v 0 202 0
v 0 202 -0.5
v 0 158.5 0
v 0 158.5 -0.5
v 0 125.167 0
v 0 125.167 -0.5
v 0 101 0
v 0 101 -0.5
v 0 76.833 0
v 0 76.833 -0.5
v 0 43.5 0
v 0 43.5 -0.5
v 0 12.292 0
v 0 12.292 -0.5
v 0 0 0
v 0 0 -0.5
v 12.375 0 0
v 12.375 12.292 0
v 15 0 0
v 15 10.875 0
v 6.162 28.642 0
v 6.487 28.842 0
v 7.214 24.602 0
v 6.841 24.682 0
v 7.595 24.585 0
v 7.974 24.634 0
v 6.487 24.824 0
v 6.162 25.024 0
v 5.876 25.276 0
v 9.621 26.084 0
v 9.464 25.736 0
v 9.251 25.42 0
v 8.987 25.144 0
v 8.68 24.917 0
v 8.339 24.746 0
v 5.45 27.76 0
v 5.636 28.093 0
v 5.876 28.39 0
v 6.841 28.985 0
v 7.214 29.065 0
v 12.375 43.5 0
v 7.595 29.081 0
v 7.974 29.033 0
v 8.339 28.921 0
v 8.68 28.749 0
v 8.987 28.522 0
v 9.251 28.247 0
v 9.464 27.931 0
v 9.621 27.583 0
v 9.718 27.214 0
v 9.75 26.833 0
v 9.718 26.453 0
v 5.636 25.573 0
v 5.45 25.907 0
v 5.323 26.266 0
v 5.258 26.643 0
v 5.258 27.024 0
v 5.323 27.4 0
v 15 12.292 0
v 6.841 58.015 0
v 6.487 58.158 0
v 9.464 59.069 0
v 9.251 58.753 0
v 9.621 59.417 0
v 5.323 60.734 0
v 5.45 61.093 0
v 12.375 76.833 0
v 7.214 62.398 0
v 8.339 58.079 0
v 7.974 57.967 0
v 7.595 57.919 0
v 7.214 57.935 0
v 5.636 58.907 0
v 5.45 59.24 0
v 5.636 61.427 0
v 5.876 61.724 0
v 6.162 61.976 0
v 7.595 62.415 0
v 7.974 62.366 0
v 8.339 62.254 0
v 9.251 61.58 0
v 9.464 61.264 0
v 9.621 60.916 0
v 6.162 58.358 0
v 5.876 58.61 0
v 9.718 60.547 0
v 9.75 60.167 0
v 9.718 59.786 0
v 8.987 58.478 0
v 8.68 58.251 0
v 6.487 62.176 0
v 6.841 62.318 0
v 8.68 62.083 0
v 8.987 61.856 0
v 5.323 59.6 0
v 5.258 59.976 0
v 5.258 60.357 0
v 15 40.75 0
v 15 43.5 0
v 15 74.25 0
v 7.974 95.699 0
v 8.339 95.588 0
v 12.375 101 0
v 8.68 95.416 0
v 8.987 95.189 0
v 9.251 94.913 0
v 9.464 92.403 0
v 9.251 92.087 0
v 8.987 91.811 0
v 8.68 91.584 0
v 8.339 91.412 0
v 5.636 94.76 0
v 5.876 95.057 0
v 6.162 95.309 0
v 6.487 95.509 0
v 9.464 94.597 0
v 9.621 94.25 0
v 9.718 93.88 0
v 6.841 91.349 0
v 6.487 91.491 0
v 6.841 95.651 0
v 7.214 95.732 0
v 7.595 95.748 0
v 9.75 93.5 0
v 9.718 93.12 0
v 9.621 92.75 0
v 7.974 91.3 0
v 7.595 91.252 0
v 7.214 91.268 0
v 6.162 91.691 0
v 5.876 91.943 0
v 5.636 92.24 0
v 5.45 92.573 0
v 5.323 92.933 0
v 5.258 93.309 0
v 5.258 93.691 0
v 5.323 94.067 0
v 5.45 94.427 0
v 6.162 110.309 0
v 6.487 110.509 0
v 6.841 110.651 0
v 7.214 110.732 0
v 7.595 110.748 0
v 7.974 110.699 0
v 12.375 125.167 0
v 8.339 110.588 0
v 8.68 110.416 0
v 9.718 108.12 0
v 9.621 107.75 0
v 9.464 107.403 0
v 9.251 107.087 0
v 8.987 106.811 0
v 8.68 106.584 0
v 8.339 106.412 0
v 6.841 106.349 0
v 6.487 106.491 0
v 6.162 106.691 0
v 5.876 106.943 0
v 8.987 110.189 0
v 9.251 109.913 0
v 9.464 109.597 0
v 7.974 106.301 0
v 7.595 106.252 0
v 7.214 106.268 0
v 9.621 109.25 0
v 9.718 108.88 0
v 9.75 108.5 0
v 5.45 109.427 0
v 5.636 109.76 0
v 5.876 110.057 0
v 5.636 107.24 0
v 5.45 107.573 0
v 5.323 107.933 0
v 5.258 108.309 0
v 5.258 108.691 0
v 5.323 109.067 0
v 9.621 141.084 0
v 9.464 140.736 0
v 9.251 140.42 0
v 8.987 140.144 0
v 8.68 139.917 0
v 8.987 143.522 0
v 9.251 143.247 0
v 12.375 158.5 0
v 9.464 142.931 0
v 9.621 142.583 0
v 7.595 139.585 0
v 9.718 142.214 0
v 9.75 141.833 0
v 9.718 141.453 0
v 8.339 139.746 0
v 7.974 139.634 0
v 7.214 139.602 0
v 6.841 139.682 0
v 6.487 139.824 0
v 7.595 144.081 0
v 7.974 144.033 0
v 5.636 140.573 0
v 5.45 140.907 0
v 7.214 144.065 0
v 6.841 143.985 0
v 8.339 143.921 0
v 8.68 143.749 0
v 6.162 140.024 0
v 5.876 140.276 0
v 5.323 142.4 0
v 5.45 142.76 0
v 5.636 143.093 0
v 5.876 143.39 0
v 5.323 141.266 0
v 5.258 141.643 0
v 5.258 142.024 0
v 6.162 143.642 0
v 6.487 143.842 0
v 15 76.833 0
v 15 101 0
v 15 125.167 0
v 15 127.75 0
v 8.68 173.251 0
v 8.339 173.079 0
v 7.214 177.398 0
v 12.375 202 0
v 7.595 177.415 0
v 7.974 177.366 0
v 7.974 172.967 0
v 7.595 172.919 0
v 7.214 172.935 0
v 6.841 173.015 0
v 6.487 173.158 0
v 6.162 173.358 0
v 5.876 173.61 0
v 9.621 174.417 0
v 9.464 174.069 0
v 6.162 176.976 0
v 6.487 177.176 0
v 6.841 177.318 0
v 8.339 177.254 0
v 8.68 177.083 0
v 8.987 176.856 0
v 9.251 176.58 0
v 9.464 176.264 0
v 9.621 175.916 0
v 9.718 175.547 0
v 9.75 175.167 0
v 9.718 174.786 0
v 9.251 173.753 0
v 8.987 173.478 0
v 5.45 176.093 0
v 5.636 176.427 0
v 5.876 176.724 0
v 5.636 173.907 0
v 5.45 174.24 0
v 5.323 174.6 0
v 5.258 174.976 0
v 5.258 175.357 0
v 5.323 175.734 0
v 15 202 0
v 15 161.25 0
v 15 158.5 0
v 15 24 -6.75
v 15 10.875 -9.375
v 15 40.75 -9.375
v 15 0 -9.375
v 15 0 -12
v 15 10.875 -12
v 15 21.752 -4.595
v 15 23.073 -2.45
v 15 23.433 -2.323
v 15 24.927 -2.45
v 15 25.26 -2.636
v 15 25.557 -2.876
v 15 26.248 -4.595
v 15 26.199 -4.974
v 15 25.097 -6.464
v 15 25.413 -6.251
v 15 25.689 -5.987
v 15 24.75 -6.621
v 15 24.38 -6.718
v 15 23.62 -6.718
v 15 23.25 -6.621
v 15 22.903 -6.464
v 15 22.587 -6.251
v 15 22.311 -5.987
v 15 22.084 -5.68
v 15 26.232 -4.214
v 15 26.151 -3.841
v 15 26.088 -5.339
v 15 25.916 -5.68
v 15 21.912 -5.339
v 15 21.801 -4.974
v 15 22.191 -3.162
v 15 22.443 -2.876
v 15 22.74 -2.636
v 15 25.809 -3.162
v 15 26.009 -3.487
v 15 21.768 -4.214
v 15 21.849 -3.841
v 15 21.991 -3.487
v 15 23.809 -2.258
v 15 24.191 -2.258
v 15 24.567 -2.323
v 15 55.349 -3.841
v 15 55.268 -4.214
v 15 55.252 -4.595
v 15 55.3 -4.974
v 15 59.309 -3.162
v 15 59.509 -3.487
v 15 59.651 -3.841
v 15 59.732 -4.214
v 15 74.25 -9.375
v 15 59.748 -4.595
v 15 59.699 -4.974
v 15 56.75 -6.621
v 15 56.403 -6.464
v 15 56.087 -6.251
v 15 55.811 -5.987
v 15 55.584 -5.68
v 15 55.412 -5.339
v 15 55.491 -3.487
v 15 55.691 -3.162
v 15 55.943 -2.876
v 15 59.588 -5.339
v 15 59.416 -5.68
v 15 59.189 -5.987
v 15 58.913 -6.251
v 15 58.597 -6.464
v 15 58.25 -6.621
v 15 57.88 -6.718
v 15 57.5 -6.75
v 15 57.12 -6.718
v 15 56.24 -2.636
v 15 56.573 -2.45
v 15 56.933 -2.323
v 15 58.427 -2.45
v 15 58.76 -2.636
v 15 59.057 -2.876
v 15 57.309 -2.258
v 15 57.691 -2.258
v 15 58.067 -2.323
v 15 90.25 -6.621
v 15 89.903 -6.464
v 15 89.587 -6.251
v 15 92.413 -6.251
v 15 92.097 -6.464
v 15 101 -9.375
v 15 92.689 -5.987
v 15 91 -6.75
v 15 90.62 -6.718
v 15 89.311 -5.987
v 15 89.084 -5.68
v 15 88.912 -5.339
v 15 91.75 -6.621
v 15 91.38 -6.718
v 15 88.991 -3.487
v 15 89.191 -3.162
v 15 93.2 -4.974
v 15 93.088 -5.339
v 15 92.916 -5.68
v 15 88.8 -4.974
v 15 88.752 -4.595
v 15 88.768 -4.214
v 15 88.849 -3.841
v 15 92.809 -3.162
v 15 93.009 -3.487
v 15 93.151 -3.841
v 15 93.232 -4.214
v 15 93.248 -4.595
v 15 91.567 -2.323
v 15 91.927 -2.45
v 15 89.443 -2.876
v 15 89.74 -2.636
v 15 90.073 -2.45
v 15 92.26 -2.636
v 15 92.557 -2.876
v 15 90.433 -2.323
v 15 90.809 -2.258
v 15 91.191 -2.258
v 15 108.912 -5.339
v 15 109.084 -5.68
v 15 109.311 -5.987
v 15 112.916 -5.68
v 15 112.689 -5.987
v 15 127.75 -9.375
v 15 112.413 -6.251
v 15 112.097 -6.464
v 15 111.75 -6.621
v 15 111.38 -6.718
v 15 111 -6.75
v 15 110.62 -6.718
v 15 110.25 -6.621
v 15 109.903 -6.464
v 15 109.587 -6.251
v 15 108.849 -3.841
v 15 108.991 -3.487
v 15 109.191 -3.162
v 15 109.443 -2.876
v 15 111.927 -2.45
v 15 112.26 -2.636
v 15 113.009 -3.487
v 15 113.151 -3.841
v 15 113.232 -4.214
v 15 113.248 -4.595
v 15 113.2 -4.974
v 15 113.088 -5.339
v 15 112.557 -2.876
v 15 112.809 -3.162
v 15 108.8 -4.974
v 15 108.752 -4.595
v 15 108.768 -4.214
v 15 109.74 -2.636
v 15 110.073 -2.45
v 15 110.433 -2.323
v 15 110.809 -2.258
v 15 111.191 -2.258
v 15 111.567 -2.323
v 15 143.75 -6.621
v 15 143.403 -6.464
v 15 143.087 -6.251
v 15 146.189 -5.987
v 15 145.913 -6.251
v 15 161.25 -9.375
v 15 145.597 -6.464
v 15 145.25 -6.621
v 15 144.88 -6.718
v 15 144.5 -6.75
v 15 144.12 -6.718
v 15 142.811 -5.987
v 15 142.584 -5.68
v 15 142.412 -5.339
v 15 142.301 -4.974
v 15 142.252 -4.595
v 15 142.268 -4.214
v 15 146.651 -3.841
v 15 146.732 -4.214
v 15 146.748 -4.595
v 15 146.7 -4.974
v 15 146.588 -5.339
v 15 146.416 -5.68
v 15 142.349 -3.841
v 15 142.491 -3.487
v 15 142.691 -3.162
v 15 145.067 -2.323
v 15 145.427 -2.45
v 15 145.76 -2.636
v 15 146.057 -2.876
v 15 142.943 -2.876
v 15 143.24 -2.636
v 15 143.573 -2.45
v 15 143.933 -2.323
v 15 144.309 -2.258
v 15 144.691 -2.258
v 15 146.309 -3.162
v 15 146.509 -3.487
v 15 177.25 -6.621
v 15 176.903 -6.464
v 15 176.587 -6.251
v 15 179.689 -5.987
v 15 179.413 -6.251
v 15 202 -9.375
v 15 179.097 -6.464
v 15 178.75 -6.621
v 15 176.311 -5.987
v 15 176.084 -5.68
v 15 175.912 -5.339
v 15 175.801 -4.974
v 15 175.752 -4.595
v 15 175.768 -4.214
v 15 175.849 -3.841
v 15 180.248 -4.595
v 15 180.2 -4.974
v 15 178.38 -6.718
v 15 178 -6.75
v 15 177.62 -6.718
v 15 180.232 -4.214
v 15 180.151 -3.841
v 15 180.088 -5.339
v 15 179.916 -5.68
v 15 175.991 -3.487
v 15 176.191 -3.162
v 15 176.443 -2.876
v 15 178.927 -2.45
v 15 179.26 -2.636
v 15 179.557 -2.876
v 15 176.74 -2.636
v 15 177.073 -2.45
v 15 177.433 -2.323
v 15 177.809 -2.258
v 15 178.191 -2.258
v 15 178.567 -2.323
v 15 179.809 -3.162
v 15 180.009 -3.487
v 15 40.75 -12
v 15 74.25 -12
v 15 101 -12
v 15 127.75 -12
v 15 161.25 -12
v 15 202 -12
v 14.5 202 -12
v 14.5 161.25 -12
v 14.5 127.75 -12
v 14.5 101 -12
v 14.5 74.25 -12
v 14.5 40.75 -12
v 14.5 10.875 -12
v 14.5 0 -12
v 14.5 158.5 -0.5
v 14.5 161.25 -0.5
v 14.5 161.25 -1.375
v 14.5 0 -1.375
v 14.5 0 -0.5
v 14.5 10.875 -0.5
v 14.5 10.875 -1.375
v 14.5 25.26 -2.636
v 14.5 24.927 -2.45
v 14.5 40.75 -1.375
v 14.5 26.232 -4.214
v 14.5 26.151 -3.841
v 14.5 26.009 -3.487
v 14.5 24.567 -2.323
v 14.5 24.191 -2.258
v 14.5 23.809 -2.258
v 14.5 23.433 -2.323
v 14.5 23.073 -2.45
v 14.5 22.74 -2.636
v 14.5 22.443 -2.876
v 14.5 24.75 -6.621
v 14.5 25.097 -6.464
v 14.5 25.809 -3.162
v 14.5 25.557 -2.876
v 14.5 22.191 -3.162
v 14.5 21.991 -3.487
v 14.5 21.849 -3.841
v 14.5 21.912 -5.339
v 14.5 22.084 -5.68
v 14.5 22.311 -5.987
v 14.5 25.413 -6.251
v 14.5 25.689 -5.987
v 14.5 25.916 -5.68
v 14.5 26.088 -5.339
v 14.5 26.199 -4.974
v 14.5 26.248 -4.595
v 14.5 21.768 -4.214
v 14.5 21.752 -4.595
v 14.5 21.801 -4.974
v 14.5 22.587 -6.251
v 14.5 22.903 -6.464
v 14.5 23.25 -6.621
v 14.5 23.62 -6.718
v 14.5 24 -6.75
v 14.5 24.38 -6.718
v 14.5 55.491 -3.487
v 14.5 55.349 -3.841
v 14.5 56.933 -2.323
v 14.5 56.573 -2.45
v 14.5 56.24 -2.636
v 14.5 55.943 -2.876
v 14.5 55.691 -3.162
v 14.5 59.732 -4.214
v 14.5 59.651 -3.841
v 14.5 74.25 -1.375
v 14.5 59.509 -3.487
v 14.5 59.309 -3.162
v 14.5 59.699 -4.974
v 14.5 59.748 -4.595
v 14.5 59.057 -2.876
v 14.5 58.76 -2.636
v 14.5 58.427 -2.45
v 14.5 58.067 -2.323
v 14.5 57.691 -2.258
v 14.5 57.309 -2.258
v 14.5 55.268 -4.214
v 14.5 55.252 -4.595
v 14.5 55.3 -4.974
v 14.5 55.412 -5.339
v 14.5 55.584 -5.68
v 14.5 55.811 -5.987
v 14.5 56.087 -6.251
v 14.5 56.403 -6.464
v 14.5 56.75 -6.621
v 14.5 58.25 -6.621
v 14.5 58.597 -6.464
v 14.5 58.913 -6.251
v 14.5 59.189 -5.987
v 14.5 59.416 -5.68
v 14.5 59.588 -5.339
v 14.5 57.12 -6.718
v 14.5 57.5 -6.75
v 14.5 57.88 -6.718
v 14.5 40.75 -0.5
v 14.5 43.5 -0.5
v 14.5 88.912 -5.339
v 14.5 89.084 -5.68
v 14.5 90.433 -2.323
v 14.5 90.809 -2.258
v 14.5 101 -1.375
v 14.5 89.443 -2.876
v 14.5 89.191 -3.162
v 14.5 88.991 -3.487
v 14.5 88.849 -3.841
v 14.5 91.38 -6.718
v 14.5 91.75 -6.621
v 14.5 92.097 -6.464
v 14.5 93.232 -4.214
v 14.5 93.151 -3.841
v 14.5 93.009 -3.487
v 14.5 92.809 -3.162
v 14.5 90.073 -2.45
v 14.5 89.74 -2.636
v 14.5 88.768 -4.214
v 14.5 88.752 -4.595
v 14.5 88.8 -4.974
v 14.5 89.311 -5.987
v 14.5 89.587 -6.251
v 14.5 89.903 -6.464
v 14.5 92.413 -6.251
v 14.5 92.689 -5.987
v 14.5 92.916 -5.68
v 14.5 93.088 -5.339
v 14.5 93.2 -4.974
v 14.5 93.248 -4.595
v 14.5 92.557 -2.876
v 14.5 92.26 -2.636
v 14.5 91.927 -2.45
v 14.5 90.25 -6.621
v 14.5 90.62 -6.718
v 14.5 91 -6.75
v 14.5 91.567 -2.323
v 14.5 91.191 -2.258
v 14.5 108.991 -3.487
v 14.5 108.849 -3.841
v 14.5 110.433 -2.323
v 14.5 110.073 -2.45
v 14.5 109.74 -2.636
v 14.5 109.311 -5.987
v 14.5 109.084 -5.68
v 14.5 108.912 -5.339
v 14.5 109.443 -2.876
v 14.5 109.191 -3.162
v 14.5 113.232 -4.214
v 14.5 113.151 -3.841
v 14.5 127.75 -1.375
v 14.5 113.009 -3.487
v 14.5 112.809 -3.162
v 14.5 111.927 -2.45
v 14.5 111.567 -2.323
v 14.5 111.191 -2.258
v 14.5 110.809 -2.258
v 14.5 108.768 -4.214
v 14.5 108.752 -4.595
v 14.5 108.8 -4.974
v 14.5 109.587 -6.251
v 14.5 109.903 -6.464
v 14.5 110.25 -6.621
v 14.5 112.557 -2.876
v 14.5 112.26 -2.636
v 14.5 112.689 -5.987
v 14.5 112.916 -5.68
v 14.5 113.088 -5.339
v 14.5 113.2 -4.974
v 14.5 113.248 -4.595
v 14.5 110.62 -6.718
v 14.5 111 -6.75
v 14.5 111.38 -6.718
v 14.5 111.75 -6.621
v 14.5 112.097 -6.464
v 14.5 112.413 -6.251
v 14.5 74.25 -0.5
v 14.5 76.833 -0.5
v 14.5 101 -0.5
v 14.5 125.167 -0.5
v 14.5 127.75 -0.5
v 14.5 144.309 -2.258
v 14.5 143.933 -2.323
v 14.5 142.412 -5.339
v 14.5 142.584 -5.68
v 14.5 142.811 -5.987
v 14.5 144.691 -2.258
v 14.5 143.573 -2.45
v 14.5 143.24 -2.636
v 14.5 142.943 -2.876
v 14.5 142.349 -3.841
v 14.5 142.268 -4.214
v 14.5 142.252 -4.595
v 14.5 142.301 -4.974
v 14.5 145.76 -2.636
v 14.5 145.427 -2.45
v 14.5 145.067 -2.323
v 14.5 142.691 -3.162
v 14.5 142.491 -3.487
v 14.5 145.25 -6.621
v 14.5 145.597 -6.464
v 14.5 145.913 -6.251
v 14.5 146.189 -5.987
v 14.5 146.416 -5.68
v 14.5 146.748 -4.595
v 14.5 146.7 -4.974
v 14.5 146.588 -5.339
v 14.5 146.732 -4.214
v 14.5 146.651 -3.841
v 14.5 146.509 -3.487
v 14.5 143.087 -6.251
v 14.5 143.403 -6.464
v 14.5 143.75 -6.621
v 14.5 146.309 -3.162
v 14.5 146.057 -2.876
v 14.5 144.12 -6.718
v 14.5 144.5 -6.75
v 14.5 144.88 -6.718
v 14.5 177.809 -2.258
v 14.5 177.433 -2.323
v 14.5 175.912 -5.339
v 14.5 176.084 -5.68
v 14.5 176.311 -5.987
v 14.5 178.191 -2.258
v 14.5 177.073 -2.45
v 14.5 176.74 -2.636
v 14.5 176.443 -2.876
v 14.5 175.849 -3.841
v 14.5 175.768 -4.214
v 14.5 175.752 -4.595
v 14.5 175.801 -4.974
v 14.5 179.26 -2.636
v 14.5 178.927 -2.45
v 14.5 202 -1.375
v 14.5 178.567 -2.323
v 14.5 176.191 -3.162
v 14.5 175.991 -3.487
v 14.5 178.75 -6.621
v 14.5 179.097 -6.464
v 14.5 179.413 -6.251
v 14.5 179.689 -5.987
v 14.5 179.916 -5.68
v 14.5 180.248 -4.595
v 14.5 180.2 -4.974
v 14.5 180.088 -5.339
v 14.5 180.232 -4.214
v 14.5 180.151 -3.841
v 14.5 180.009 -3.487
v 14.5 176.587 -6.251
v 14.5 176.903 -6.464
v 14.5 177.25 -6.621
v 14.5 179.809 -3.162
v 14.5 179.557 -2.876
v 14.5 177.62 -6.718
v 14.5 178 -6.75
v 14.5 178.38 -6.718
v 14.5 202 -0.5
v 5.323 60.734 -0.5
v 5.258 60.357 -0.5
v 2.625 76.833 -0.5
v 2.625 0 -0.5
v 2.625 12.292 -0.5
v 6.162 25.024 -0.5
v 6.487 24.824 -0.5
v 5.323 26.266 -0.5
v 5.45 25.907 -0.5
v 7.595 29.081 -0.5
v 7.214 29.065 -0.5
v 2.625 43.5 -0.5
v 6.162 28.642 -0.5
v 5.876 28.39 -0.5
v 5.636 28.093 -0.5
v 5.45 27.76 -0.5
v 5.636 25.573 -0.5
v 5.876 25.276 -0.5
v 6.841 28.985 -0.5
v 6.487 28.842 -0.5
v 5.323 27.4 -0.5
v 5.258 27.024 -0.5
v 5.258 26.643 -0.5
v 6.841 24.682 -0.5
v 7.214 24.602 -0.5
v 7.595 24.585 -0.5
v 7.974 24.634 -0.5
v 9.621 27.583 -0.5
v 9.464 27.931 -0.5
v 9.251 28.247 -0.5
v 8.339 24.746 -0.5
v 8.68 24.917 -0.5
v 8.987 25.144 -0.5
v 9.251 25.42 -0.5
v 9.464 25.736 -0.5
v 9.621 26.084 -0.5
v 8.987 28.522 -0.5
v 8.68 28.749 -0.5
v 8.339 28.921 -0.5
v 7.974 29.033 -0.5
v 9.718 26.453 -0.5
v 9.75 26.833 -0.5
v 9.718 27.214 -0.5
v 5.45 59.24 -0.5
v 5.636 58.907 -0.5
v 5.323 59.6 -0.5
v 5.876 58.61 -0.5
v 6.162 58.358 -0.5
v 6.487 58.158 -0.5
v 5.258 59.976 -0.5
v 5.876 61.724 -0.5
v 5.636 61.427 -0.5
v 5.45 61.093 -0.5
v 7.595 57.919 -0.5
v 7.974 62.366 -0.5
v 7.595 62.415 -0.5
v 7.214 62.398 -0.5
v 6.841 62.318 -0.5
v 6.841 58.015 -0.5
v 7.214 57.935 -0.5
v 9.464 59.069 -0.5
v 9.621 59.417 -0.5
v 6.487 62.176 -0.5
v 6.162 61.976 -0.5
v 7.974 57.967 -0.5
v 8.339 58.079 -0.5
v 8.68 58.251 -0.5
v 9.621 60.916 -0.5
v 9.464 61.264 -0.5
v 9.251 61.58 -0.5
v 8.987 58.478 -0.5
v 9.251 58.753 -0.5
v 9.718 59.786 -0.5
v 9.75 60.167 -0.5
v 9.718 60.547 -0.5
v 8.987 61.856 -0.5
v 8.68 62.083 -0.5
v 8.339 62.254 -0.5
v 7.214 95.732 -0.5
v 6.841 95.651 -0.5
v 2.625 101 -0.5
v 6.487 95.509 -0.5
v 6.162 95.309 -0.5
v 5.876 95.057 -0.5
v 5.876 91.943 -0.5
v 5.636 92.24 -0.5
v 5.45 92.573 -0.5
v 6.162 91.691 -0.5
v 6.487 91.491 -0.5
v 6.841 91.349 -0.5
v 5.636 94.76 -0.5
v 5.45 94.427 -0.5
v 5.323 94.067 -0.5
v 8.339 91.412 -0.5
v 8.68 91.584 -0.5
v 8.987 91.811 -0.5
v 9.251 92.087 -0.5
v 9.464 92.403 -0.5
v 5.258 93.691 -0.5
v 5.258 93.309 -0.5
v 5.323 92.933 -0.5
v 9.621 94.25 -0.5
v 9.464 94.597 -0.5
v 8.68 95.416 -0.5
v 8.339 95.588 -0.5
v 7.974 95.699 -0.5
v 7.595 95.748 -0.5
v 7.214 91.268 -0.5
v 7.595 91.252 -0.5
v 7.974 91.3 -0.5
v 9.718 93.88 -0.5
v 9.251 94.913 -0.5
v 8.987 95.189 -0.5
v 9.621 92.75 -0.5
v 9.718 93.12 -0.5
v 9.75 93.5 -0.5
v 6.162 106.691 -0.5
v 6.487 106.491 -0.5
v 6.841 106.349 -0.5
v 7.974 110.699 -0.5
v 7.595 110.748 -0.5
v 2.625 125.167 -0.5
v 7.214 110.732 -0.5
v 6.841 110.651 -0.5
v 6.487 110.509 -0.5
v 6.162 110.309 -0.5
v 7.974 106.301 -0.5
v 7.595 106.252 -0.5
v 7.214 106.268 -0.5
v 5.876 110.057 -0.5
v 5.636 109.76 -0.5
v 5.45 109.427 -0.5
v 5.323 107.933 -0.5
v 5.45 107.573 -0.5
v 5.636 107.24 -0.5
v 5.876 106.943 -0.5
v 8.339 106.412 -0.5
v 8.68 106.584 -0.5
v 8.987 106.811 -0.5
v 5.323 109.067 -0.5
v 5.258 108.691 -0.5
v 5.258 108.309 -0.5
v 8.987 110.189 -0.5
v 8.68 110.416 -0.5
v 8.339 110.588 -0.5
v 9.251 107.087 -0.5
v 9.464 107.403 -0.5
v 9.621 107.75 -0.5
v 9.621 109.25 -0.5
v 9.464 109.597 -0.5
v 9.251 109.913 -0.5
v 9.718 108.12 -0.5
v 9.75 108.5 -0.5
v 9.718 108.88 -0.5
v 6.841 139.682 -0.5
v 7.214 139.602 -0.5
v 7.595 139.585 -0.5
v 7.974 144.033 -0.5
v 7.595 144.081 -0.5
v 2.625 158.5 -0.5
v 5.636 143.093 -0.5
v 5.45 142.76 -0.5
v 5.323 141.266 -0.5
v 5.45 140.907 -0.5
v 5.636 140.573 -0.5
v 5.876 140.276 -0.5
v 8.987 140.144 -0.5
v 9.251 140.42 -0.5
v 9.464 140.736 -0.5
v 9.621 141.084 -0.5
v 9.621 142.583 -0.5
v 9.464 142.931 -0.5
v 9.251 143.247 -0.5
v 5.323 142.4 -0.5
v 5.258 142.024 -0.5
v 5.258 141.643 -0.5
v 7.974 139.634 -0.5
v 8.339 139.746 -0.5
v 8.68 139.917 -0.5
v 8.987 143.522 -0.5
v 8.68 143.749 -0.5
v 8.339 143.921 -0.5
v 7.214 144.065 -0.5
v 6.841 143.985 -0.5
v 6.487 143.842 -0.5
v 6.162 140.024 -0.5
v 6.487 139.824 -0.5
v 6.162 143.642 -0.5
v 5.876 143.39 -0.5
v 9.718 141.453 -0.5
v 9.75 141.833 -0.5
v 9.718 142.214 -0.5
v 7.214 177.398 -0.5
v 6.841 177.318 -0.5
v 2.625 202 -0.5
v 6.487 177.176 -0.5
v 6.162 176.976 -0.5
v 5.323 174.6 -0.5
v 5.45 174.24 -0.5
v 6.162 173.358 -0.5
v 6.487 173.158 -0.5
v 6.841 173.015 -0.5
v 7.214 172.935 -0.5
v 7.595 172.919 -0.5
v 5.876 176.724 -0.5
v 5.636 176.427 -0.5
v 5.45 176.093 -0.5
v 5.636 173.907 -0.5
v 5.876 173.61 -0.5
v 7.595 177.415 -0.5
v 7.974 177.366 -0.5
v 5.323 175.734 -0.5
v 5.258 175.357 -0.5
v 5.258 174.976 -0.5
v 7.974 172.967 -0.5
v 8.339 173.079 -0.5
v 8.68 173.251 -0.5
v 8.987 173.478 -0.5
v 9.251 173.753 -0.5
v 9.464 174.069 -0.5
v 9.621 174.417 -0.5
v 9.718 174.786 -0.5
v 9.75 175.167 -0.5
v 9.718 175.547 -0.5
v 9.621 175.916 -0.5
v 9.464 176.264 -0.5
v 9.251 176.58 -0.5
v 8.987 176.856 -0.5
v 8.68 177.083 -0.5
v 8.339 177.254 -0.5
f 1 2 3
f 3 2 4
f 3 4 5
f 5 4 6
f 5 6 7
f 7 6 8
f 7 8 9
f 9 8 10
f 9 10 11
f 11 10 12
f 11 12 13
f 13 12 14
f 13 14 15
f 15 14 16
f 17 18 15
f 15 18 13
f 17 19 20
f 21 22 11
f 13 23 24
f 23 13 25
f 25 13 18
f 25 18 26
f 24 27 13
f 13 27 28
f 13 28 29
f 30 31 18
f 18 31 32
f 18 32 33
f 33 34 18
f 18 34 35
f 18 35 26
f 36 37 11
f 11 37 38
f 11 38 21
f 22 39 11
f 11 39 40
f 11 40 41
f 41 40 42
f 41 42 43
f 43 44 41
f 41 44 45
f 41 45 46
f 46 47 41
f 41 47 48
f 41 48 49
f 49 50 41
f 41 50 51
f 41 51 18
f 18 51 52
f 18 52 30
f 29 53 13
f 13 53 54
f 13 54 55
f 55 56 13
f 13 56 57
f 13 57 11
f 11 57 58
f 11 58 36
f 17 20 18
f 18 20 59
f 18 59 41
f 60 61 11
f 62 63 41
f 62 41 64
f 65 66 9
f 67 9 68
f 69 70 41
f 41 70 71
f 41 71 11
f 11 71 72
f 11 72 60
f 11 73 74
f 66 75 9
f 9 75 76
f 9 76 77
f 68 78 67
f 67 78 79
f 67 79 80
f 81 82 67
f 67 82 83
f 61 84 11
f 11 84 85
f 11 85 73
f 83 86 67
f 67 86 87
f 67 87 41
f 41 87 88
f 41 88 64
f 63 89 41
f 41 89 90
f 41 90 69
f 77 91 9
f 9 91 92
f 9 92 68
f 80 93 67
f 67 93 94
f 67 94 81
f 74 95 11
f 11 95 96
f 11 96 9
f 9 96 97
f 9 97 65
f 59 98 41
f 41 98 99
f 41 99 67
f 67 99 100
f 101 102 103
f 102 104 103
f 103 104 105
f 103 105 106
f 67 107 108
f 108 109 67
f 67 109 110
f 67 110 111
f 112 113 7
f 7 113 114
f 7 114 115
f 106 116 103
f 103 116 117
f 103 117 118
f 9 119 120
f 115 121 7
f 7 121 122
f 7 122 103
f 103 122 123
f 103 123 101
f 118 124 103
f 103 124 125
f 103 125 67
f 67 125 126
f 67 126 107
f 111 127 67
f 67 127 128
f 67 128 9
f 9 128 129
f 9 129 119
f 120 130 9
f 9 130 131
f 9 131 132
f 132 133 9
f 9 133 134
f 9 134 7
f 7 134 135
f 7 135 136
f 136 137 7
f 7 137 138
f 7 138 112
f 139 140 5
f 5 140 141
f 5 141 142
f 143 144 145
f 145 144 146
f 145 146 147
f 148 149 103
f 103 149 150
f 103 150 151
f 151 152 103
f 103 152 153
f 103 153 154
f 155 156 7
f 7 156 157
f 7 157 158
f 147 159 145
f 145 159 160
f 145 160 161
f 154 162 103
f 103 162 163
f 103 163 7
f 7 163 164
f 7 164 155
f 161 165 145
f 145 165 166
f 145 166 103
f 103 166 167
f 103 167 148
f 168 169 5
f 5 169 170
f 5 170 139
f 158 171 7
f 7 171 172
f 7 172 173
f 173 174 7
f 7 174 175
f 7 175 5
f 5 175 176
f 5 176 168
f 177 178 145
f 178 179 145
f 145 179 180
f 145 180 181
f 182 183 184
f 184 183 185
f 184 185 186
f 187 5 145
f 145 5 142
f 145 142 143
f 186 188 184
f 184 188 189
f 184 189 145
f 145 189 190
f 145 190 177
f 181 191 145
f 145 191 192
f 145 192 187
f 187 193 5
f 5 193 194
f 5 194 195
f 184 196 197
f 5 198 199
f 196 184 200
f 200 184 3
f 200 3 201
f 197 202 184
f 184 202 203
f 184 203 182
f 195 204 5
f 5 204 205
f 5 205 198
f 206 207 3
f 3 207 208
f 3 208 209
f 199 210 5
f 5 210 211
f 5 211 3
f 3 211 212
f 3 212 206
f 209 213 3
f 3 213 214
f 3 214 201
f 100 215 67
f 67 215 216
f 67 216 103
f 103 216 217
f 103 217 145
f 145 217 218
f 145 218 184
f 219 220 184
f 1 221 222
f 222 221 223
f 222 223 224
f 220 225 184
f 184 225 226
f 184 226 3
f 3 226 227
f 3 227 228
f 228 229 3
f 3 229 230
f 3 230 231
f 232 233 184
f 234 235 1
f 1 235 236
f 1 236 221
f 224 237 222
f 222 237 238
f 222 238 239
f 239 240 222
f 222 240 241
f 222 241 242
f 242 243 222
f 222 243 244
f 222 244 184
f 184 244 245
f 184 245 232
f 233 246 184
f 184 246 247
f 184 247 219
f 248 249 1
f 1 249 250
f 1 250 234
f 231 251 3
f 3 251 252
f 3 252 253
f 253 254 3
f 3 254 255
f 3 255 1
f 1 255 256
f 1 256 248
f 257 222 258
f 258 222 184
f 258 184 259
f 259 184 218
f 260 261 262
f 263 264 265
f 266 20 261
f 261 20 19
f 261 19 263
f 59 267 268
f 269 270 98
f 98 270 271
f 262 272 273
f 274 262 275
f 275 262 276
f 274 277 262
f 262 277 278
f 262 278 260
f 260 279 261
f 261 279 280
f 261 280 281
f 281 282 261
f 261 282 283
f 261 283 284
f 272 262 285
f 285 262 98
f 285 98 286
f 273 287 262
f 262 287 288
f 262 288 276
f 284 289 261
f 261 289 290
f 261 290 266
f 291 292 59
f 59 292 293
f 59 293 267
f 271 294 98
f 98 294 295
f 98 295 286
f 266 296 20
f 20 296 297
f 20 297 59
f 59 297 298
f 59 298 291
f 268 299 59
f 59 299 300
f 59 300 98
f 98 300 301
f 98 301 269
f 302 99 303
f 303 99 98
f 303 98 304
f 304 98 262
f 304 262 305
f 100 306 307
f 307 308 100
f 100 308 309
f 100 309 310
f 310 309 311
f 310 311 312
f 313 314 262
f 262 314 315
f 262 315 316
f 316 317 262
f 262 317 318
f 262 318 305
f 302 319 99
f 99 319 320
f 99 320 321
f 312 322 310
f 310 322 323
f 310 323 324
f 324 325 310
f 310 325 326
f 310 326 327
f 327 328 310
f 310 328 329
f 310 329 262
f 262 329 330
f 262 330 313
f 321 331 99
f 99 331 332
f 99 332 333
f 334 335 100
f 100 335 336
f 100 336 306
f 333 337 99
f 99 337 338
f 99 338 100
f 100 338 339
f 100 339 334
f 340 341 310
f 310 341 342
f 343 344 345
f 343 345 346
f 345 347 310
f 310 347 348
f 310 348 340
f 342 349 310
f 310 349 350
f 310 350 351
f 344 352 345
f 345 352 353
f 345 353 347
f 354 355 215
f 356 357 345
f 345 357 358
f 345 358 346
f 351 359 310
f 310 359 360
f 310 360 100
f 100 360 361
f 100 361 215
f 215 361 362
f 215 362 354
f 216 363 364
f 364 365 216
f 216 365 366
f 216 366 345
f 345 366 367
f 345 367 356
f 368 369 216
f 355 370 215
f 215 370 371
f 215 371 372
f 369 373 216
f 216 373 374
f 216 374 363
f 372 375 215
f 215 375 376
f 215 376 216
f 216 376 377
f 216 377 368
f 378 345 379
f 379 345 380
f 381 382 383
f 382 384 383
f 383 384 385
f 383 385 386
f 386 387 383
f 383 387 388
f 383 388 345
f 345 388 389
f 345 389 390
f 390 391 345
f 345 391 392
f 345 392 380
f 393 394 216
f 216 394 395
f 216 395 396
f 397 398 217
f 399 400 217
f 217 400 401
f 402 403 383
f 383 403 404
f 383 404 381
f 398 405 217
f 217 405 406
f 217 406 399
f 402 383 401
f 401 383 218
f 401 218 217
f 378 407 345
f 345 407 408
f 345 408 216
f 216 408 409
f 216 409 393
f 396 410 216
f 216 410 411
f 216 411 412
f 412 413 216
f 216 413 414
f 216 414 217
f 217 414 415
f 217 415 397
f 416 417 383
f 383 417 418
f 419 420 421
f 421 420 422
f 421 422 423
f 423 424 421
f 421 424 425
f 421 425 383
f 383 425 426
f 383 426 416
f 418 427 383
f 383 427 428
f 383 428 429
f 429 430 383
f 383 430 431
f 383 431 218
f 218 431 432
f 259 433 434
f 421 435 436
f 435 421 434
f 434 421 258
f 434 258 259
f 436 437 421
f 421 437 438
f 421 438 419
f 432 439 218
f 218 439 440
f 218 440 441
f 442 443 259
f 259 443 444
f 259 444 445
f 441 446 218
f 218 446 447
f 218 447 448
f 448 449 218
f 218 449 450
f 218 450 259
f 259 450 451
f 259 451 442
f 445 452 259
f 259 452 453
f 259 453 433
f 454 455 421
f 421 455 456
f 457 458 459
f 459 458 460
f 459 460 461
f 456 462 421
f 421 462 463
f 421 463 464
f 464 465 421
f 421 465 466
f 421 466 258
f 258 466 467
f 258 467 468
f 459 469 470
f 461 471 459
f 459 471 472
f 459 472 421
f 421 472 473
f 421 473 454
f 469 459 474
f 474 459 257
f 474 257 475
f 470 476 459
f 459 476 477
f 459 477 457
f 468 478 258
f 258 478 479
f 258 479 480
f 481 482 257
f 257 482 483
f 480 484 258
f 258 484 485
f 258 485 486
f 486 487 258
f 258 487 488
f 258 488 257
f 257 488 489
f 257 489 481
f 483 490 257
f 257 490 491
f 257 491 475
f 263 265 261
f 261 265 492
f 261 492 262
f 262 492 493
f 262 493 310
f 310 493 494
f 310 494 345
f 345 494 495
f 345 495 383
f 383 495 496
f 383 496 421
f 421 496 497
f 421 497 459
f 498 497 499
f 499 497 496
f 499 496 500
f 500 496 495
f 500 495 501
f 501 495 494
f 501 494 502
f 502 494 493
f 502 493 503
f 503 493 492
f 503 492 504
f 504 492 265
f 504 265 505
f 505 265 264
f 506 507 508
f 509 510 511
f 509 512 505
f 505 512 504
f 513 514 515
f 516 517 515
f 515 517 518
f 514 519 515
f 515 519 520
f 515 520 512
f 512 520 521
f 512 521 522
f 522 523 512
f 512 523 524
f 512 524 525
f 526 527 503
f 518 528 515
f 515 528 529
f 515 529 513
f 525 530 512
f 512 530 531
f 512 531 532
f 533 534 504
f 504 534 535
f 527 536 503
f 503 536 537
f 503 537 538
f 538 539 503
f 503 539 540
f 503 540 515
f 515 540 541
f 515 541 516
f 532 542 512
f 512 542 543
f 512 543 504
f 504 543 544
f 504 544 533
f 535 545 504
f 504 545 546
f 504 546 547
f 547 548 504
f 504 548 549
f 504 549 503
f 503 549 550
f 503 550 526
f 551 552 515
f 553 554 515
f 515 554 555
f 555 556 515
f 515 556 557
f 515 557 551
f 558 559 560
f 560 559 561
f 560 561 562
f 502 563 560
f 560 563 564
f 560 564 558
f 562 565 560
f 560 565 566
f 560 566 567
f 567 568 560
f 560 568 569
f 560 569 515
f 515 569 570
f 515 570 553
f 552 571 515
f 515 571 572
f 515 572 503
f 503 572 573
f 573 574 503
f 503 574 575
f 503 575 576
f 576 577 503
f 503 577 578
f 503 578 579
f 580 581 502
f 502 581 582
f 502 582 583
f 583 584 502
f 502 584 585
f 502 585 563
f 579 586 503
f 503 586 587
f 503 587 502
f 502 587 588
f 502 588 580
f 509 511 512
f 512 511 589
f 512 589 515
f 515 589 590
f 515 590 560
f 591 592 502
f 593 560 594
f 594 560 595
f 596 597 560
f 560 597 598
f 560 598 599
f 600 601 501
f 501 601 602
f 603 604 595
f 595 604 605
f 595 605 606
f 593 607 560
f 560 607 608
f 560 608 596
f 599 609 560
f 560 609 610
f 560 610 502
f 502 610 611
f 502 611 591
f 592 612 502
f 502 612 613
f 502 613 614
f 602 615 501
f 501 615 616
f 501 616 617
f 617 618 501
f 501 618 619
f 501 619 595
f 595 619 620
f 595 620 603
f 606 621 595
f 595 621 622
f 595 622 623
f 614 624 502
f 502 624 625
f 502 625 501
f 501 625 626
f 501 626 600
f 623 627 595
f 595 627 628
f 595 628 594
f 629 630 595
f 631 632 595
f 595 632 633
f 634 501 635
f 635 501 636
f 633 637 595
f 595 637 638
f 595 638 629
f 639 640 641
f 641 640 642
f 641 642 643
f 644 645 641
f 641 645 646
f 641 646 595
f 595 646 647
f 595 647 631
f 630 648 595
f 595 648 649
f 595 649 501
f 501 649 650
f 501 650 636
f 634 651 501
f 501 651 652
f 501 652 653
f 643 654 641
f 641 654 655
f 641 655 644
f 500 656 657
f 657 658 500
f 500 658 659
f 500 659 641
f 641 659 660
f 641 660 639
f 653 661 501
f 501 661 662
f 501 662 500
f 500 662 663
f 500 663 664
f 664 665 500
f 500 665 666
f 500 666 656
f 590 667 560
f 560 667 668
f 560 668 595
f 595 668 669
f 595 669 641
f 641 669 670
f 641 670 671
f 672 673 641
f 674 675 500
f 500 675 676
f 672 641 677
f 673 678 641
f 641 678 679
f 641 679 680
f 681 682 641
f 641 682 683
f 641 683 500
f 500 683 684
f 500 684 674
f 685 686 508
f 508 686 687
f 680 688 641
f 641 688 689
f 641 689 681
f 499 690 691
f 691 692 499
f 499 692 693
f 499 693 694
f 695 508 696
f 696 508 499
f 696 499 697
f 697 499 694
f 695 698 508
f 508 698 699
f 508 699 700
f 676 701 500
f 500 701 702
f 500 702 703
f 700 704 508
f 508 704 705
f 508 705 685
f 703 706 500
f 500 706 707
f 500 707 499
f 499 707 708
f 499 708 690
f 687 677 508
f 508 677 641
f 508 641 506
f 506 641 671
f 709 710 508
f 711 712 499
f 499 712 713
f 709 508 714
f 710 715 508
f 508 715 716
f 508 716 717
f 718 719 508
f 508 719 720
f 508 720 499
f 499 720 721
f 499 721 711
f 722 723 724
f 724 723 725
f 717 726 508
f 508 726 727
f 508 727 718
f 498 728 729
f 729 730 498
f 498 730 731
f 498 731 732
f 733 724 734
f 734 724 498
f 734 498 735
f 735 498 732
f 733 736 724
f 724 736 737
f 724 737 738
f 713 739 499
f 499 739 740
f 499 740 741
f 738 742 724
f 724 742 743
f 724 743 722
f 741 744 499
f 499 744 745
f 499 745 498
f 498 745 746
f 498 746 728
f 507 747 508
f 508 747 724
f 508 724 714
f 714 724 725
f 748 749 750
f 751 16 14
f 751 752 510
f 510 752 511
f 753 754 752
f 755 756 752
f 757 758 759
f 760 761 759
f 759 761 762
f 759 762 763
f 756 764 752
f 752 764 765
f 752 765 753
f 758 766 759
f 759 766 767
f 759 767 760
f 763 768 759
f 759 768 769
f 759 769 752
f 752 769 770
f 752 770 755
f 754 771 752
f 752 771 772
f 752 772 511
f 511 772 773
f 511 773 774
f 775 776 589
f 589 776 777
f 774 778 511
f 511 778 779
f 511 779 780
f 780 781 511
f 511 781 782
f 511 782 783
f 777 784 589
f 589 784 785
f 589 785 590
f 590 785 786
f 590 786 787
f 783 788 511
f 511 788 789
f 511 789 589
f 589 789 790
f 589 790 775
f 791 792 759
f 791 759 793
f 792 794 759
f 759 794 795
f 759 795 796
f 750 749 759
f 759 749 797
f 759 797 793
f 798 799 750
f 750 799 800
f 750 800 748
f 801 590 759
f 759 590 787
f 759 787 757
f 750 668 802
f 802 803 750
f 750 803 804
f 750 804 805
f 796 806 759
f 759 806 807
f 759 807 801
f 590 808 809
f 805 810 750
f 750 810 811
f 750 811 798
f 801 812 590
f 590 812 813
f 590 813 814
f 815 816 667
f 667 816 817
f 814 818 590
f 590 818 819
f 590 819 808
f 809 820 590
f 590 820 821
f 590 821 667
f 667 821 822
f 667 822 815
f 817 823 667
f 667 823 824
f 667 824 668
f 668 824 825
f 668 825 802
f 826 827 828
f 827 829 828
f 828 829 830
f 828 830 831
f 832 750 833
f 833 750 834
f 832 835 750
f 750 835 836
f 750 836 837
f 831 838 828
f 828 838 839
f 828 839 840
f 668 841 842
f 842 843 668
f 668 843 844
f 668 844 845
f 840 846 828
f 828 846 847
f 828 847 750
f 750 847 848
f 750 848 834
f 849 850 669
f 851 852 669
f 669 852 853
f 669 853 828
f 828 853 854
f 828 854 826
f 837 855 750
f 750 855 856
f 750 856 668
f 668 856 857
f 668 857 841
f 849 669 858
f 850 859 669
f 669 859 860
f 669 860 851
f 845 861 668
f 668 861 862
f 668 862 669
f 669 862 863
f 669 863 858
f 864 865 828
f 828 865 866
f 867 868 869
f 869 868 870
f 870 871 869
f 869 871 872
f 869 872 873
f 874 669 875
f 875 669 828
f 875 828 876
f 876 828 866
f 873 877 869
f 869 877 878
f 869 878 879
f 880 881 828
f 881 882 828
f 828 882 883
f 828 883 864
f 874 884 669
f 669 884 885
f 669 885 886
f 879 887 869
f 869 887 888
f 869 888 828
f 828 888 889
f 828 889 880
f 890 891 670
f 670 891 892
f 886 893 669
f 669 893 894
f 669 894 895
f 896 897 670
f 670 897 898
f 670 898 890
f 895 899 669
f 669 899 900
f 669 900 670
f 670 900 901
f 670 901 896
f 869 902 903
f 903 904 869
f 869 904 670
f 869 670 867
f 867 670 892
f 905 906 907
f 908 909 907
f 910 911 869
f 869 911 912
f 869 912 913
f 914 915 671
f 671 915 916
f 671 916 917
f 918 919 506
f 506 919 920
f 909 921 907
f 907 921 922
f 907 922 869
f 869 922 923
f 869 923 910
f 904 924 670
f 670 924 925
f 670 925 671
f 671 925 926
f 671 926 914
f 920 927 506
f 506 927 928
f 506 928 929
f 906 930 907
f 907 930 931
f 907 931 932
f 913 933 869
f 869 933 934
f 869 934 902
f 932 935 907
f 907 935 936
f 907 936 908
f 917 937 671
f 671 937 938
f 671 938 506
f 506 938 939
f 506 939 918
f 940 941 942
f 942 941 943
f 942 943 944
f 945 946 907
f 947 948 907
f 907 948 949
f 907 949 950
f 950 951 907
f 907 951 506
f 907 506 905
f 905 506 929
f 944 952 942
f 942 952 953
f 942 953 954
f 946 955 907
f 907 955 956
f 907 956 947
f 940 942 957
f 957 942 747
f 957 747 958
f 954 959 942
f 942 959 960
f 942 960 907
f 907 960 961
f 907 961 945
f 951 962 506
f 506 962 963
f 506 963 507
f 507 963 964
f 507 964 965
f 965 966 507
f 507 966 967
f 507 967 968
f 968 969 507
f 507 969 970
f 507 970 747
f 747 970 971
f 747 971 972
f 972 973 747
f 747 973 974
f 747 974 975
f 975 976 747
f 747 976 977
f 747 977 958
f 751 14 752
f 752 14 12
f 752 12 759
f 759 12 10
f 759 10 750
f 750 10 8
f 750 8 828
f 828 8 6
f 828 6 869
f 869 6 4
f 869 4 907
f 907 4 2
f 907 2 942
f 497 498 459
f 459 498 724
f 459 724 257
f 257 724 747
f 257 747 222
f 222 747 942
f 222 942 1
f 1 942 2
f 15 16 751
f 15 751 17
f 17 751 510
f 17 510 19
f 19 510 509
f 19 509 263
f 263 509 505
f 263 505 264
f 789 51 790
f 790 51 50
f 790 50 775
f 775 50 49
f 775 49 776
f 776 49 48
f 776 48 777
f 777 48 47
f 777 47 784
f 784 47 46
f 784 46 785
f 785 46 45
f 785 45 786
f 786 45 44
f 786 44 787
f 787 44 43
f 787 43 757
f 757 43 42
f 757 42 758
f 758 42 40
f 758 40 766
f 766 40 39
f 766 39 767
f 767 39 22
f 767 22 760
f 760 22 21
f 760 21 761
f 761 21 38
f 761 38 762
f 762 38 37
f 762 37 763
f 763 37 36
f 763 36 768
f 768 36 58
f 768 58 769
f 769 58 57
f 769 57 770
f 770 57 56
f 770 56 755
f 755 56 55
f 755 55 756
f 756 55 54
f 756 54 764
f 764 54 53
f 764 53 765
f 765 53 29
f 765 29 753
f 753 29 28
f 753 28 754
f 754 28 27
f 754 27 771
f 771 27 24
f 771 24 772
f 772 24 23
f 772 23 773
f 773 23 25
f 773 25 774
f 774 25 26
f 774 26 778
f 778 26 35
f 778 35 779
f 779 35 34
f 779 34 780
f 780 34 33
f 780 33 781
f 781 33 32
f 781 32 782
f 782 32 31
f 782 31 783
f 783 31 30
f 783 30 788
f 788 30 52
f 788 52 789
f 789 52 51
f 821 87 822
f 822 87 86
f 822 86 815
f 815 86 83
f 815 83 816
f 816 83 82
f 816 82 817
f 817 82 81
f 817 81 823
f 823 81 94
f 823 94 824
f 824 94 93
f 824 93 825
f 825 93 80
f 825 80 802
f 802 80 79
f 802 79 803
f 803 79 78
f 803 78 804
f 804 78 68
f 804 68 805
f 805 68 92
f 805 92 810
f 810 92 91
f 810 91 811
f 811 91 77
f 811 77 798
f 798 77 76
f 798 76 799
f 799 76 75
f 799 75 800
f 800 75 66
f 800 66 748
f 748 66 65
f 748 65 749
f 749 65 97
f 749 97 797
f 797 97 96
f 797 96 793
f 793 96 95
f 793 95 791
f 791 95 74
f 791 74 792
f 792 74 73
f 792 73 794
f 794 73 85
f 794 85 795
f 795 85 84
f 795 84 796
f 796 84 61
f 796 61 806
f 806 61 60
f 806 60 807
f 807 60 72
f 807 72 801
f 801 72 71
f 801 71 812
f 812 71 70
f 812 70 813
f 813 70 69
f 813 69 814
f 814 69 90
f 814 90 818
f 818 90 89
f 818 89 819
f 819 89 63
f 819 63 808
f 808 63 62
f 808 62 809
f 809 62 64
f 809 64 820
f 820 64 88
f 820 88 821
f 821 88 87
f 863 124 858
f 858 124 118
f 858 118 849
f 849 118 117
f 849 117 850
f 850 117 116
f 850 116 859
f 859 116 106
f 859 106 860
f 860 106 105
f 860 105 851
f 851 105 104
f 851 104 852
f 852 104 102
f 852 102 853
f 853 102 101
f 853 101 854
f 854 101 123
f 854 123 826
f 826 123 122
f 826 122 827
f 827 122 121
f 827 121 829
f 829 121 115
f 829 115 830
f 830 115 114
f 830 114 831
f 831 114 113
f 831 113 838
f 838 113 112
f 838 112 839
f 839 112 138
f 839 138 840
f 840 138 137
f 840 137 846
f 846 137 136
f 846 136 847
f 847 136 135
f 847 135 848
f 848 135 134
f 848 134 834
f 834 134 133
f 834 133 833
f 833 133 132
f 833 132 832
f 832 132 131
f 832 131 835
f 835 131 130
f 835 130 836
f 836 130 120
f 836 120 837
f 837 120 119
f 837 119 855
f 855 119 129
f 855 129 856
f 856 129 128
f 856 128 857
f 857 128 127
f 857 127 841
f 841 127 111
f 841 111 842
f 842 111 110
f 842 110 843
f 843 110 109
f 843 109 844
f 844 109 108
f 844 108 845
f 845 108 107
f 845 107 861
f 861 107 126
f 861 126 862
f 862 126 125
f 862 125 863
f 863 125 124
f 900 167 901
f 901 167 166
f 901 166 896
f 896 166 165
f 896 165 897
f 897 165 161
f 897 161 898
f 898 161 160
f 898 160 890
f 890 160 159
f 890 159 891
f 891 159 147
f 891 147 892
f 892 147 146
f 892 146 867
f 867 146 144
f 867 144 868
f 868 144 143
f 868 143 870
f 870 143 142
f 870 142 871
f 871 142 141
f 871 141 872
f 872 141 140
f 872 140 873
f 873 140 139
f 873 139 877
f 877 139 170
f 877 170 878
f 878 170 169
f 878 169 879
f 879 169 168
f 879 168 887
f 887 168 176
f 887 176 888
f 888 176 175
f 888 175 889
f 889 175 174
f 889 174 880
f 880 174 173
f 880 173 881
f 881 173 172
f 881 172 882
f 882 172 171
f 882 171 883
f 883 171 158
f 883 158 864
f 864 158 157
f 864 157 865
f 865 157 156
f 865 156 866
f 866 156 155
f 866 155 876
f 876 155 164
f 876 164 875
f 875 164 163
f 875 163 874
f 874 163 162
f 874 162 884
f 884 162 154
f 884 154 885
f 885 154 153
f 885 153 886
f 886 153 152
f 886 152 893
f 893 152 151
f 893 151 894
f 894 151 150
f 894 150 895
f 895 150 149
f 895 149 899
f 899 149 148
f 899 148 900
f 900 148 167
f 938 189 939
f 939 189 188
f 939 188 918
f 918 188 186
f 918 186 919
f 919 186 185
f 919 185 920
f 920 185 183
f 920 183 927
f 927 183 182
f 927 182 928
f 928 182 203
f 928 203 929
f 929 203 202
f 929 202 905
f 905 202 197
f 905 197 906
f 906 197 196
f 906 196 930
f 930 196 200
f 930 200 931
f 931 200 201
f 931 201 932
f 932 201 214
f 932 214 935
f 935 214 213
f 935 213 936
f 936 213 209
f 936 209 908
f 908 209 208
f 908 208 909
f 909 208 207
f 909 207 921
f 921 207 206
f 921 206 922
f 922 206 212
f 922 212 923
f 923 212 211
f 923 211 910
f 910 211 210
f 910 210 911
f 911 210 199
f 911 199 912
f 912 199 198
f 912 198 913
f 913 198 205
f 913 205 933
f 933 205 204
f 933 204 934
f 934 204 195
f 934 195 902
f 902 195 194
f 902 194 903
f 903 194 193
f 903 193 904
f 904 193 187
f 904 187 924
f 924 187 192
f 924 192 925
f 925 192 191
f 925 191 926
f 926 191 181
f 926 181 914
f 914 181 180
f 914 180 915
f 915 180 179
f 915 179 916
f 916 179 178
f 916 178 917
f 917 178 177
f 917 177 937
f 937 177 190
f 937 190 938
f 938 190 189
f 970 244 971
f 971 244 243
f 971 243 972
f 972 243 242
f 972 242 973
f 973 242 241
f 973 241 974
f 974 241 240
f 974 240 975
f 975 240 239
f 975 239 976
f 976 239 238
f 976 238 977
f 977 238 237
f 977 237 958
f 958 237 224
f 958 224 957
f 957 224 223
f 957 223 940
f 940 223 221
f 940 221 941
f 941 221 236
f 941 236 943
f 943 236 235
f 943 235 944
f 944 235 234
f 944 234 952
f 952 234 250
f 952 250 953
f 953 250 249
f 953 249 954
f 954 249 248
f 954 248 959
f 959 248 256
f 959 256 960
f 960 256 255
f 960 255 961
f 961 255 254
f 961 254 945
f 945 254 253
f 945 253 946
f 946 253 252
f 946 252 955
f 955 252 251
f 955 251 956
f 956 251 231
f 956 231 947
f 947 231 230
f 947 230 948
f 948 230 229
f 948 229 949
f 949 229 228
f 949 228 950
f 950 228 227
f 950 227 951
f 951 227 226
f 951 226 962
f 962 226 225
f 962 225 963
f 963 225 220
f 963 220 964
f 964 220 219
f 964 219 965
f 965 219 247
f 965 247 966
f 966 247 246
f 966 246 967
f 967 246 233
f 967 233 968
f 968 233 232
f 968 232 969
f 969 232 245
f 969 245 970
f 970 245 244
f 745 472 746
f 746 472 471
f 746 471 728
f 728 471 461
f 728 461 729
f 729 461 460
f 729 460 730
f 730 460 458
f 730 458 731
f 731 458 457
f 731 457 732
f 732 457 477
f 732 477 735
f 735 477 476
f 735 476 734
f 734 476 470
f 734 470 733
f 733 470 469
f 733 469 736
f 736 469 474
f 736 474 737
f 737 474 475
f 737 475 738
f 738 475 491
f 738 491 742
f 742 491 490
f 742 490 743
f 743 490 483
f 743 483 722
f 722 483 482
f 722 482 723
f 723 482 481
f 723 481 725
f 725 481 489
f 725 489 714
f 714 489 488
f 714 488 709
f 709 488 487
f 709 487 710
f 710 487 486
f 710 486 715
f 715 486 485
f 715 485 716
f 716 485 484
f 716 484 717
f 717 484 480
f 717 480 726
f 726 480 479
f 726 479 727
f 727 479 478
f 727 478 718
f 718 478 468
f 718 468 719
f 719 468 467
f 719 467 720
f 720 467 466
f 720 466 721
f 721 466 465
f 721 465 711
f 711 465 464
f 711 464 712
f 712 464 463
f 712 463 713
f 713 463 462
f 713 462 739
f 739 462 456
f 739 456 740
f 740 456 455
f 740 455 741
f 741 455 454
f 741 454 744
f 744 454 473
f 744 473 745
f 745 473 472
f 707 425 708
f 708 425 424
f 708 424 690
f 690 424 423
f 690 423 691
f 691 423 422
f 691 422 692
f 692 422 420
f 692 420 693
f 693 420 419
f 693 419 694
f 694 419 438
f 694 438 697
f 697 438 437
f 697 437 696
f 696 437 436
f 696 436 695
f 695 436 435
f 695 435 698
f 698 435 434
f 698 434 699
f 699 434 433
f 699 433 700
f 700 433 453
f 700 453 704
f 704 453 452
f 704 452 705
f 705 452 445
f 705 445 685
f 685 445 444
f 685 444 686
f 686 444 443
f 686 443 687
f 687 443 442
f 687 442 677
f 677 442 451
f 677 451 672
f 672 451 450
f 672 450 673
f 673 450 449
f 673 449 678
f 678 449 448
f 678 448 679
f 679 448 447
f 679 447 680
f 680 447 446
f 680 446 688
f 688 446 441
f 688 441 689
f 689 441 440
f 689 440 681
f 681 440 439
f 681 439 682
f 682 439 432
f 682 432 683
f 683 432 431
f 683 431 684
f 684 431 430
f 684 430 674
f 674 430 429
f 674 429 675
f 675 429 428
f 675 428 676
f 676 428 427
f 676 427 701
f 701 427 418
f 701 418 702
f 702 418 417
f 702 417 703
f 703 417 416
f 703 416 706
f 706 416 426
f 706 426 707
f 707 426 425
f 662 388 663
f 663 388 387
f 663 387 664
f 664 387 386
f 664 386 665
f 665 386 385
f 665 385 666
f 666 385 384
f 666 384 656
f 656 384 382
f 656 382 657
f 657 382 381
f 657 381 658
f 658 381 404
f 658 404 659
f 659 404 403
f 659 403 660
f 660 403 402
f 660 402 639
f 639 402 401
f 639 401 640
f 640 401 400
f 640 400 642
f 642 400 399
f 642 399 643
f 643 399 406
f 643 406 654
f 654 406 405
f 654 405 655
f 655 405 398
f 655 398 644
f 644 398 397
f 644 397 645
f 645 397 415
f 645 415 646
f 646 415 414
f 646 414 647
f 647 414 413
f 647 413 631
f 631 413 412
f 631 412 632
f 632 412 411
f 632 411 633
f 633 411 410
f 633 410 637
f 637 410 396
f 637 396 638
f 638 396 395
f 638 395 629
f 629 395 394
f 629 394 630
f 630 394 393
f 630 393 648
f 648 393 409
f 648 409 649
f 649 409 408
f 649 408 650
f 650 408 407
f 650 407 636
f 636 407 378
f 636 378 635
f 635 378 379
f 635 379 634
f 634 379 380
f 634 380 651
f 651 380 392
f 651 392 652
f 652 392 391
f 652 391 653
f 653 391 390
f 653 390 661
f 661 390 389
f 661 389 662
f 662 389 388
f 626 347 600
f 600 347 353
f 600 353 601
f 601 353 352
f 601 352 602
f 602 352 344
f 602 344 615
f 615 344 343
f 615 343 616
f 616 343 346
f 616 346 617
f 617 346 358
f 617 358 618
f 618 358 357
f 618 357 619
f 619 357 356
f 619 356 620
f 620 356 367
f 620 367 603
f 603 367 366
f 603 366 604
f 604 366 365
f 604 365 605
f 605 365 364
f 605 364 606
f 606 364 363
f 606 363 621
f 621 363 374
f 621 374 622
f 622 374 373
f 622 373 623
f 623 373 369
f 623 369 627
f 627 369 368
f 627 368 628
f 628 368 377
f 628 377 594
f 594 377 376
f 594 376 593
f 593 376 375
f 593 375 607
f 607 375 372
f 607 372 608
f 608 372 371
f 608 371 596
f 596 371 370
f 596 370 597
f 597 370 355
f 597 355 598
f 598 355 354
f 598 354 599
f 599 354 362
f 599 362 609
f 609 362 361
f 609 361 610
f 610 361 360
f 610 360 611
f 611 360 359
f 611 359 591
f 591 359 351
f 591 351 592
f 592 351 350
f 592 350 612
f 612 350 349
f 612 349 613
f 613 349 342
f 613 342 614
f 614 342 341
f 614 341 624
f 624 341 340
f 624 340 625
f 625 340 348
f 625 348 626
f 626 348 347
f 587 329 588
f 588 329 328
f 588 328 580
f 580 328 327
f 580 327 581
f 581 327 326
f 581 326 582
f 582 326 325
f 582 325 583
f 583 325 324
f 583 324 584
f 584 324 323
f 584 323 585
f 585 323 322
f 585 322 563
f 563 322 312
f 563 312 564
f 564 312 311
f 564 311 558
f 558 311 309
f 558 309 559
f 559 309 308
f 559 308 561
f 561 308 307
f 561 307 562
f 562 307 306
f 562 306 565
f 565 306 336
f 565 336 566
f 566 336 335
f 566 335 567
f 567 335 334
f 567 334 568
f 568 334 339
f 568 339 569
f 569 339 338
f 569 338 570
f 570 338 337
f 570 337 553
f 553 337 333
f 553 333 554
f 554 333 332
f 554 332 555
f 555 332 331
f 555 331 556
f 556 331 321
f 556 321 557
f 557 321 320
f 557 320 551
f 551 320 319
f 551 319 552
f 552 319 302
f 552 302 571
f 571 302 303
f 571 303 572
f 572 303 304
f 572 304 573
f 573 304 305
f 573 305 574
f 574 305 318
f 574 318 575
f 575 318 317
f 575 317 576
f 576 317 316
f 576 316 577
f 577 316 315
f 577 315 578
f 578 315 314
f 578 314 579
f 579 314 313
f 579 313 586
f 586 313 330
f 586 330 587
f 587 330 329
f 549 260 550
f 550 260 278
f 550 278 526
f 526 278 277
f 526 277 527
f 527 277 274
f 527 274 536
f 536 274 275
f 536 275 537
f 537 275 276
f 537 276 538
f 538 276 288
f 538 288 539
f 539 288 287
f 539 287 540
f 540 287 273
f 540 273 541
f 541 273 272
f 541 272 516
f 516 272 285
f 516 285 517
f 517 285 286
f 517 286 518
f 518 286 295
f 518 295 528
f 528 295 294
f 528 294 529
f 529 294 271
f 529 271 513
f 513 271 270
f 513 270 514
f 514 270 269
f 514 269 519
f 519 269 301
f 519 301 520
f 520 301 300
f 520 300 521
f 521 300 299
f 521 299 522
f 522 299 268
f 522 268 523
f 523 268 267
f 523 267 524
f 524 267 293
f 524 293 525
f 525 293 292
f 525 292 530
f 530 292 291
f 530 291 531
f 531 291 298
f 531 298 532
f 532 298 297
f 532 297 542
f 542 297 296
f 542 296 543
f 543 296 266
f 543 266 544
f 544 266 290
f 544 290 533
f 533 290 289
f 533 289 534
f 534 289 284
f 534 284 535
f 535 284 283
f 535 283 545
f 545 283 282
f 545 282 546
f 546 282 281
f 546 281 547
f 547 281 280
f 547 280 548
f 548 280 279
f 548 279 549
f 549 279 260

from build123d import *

# Parameters (mm, degrees)
BOSS_EXTRUDE1_DEPTH = 202
CUT_EXTRUDE1_REACH  = 14
SKETCH2_R           = 2.25
CUT_EXTRUDE2_REACH  = 17
SKETCH3_R           = 2.25


with BuildPart() as part:
    # Sketch1 → Boss-Extrude1 (new body)
    with BuildSketch(Plane(origin=(0, 0, 0), x_dir=(1, 0, 0), z_dir=(0, 1, 0))):
        Polygon((0, 0), (15, 0), (15, 12), (14.5, 12), (14.5, 0.5), (0, 0.5), align=None)
    extrude(amount=BOSS_EXTRUDE1_DEPTH)

    # Sketch2 → Cut-Extrude1 (cut, up to next)
    with BuildSketch(Plane.XY, mode=Mode.PRIVATE) as cut_extrude1_sk1:
        with Locations((7.5, 175.166666667)):
            Circle(SKETCH2_R)
    cut_extrude1_tool1 = extrude(cut_extrude1_sk1.sketch, amount=-CUT_EXTRUDE1_REACH, mode=Mode.PRIVATE) & part.part
    add(cut_extrude1_tool1.solids().sort_by_distance((7.5, 175.166667, 0))[0], mode=Mode.SUBTRACT)
    # Sketch2 → Cut-Extrude1 (cut, up to next)
    with BuildSketch(Plane.XY, mode=Mode.PRIVATE) as cut_extrude1_sk2:
        with Locations((7.5, 141.833333333)):
            Circle(SKETCH2_R)
    cut_extrude1_tool2 = extrude(cut_extrude1_sk2.sketch, amount=-CUT_EXTRUDE1_REACH, mode=Mode.PRIVATE) & part.part
    add(cut_extrude1_tool2.solids().sort_by_distance((7.5, 141.833333, 0))[0], mode=Mode.SUBTRACT)
    # Sketch2 → Cut-Extrude1 (cut, up to next)
    with BuildSketch(Plane.XY, mode=Mode.PRIVATE) as cut_extrude1_sk3:
        with Locations((7.5, 108.5)):
            Circle(SKETCH2_R)
    cut_extrude1_tool3 = extrude(cut_extrude1_sk3.sketch, amount=-CUT_EXTRUDE1_REACH, mode=Mode.PRIVATE) & part.part
    add(cut_extrude1_tool3.solids().sort_by_distance((7.5, 108.5, 0))[0], mode=Mode.SUBTRACT)
    # Sketch2 → Cut-Extrude1 (cut, up to next)
    with BuildSketch(Plane.XY, mode=Mode.PRIVATE) as cut_extrude1_sk4:
        with Locations((7.5, 93.5)):
            Circle(SKETCH2_R)
    cut_extrude1_tool4 = extrude(cut_extrude1_sk4.sketch, amount=-CUT_EXTRUDE1_REACH, mode=Mode.PRIVATE) & part.part
    add(cut_extrude1_tool4.solids().sort_by_distance((7.5, 93.5, 0))[0], mode=Mode.SUBTRACT)
    # Sketch2 → Cut-Extrude1 (cut, up to next)
    with BuildSketch(Plane.XY, mode=Mode.PRIVATE) as cut_extrude1_sk5:
        with Locations((7.5, 60.166666667)):
            Circle(SKETCH2_R)
    cut_extrude1_tool5 = extrude(cut_extrude1_sk5.sketch, amount=-CUT_EXTRUDE1_REACH, mode=Mode.PRIVATE) & part.part
    add(cut_extrude1_tool5.solids().sort_by_distance((7.5, 60.166667, 0))[0], mode=Mode.SUBTRACT)
    # Sketch2 → Cut-Extrude1 (cut, up to next)
    with BuildSketch(Plane.XY, mode=Mode.PRIVATE) as cut_extrude1_sk6:
        with Locations((7.5, 26.833333333)):
            Circle(SKETCH2_R)
    cut_extrude1_tool6 = extrude(cut_extrude1_sk6.sketch, amount=-CUT_EXTRUDE1_REACH, mode=Mode.PRIVATE) & part.part
    add(cut_extrude1_tool6.solids().sort_by_distance((7.5, 26.833333, 0))[0], mode=Mode.SUBTRACT)

    # Sketch3 → Cut-Extrude2 (cut, up to next)
    with BuildSketch(Plane(origin=(15, 0, 0), x_dir=(0, 0, -1), z_dir=(1, 0, 0)), mode=Mode.PRIVATE) as cut_extrude2_sk1:
        with Locations((4.5, 24)):
            Circle(SKETCH3_R)
    cut_extrude2_tool1 = extrude(cut_extrude2_sk1.sketch, amount=-CUT_EXTRUDE2_REACH, mode=Mode.PRIVATE) & part.part
    add(cut_extrude2_tool1.solids().sort_by_distance((15, 24, -4.5))[0], mode=Mode.SUBTRACT)
    # Sketch3 → Cut-Extrude2 (cut, up to next)
    with BuildSketch(Plane(origin=(15, 0, 0), x_dir=(0, 0, -1), z_dir=(1, 0, 0)), mode=Mode.PRIVATE) as cut_extrude2_sk2:
        with Locations((4.5, 57.5)):
            Circle(SKETCH3_R)
    cut_extrude2_tool2 = extrude(cut_extrude2_sk2.sketch, amount=-CUT_EXTRUDE2_REACH, mode=Mode.PRIVATE) & part.part
    add(cut_extrude2_tool2.solids().sort_by_distance((15, 57.5, -4.5))[0], mode=Mode.SUBTRACT)
    # Sketch3 → Cut-Extrude2 (cut, up to next)
    with BuildSketch(Plane(origin=(15, 0, 0), x_dir=(0, 0, -1), z_dir=(1, 0, 0)), mode=Mode.PRIVATE) as cut_extrude2_sk3:
        with Locations((4.5, 91)):
            Circle(SKETCH3_R)
    cut_extrude2_tool3 = extrude(cut_extrude2_sk3.sketch, amount=-CUT_EXTRUDE2_REACH, mode=Mode.PRIVATE) & part.part
    add(cut_extrude2_tool3.solids().sort_by_distance((15, 91, -4.5))[0], mode=Mode.SUBTRACT)
    # Sketch3 → Cut-Extrude2 (cut, up to next)
    with BuildSketch(Plane(origin=(15, 0, 0), x_dir=(0, 0, -1), z_dir=(1, 0, 0)), mode=Mode.PRIVATE) as cut_extrude2_sk4:
        with Locations((4.5, 111)):
            Circle(SKETCH3_R)
    cut_extrude2_tool4 = extrude(cut_extrude2_sk4.sketch, amount=-CUT_EXTRUDE2_REACH, mode=Mode.PRIVATE) & part.part
    add(cut_extrude2_tool4.solids().sort_by_distance((15, 111, -4.5))[0], mode=Mode.SUBTRACT)
    # Sketch3 → Cut-Extrude2 (cut, up to next)
    with BuildSketch(Plane(origin=(15, 0, 0), x_dir=(0, 0, -1), z_dir=(1, 0, 0)), mode=Mode.PRIVATE) as cut_extrude2_sk5:
        with Locations((4.5, 144.5)):
            Circle(SKETCH3_R)
    cut_extrude2_tool5 = extrude(cut_extrude2_sk5.sketch, amount=-CUT_EXTRUDE2_REACH, mode=Mode.PRIVATE) & part.part
    add(cut_extrude2_tool5.solids().sort_by_distance((15, 144.5, -4.5))[0], mode=Mode.SUBTRACT)
    # Sketch3 → Cut-Extrude2 (cut, up to next)
    with BuildSketch(Plane(origin=(15, 0, 0), x_dir=(0, 0, -1), z_dir=(1, 0, 0)), mode=Mode.PRIVATE) as cut_extrude2_sk6:
        with Locations((4.5, 178)):
            Circle(SKETCH3_R)
    cut_extrude2_tool6 = extrude(cut_extrude2_sk6.sketch, amount=-CUT_EXTRUDE2_REACH, mode=Mode.PRIVATE) & part.part
    add(cut_extrude2_tool6.solids().sort_by_distance((15, 178, -4.5))[0], mode=Mode.SUBTRACT)


solid = part.part
